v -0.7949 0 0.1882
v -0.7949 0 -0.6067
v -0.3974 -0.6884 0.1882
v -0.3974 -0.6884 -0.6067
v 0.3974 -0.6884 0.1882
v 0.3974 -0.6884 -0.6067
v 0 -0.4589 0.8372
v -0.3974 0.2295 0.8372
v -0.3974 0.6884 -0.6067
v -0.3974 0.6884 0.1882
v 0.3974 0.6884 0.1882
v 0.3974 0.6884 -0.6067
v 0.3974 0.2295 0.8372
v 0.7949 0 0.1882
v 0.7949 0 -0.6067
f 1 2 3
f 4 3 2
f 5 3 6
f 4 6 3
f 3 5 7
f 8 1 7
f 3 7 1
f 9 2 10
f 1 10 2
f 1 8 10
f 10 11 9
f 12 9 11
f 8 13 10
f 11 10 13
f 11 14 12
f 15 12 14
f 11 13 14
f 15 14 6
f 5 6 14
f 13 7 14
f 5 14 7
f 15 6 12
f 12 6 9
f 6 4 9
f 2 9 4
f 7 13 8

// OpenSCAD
polyhedron( points = [[-0.397448513732033, -0.688401019354741, 0.188152669986145], [-0.79489702753298, 3.64082495834213e-11, 0.188152669986145], [-0.397448513917473, 0.688401019391868, 0.188152669986145], [0.397448513519585, 0.688401019391868, 0.188152669986145], [0.794897027382347, 3.64098381067892e-11, 0.188152669986145], [0.397448513828653, -0.688401019354741, 0.188152669986145], [-0.397448513696344, -0.688401019292927, -0.606744357574541], [-0.794897027484229, 7.55966798146797e-11, -0.606744357477039], [-0.397448513634531, 0.688401019187302, -0.606744357574541], [0.397448513961846, 0.688401019115928, -0.606744357538852], [0.794897027558226, -1.06344138125052e-10, -0.606744357574541], [0.397448513828653, -0.688401019292927, -0.606744357610232], [6.89149533981679e-11, -0.458934012818092, 0.837183375142056], [0.397448513545707, 0.229467006463658, 0.837183375142056], [-0.397448513696344, 0.229467006520732, 0.837183375148765]], faces = [[0, 1, 7, 6], [0, 6, 11, 5], [0, 5, 12], [0, 12, 14, 1], [1, 2, 8, 7], [1, 14, 2], [2, 3, 9, 8], [2, 14, 13, 3], [3, 4, 10, 9], [3, 13, 4], [4, 5, 11, 10], [4, 13, 12, 5], [6, 7, 8, 9, 10, 11], [12, 13, 14]]);
